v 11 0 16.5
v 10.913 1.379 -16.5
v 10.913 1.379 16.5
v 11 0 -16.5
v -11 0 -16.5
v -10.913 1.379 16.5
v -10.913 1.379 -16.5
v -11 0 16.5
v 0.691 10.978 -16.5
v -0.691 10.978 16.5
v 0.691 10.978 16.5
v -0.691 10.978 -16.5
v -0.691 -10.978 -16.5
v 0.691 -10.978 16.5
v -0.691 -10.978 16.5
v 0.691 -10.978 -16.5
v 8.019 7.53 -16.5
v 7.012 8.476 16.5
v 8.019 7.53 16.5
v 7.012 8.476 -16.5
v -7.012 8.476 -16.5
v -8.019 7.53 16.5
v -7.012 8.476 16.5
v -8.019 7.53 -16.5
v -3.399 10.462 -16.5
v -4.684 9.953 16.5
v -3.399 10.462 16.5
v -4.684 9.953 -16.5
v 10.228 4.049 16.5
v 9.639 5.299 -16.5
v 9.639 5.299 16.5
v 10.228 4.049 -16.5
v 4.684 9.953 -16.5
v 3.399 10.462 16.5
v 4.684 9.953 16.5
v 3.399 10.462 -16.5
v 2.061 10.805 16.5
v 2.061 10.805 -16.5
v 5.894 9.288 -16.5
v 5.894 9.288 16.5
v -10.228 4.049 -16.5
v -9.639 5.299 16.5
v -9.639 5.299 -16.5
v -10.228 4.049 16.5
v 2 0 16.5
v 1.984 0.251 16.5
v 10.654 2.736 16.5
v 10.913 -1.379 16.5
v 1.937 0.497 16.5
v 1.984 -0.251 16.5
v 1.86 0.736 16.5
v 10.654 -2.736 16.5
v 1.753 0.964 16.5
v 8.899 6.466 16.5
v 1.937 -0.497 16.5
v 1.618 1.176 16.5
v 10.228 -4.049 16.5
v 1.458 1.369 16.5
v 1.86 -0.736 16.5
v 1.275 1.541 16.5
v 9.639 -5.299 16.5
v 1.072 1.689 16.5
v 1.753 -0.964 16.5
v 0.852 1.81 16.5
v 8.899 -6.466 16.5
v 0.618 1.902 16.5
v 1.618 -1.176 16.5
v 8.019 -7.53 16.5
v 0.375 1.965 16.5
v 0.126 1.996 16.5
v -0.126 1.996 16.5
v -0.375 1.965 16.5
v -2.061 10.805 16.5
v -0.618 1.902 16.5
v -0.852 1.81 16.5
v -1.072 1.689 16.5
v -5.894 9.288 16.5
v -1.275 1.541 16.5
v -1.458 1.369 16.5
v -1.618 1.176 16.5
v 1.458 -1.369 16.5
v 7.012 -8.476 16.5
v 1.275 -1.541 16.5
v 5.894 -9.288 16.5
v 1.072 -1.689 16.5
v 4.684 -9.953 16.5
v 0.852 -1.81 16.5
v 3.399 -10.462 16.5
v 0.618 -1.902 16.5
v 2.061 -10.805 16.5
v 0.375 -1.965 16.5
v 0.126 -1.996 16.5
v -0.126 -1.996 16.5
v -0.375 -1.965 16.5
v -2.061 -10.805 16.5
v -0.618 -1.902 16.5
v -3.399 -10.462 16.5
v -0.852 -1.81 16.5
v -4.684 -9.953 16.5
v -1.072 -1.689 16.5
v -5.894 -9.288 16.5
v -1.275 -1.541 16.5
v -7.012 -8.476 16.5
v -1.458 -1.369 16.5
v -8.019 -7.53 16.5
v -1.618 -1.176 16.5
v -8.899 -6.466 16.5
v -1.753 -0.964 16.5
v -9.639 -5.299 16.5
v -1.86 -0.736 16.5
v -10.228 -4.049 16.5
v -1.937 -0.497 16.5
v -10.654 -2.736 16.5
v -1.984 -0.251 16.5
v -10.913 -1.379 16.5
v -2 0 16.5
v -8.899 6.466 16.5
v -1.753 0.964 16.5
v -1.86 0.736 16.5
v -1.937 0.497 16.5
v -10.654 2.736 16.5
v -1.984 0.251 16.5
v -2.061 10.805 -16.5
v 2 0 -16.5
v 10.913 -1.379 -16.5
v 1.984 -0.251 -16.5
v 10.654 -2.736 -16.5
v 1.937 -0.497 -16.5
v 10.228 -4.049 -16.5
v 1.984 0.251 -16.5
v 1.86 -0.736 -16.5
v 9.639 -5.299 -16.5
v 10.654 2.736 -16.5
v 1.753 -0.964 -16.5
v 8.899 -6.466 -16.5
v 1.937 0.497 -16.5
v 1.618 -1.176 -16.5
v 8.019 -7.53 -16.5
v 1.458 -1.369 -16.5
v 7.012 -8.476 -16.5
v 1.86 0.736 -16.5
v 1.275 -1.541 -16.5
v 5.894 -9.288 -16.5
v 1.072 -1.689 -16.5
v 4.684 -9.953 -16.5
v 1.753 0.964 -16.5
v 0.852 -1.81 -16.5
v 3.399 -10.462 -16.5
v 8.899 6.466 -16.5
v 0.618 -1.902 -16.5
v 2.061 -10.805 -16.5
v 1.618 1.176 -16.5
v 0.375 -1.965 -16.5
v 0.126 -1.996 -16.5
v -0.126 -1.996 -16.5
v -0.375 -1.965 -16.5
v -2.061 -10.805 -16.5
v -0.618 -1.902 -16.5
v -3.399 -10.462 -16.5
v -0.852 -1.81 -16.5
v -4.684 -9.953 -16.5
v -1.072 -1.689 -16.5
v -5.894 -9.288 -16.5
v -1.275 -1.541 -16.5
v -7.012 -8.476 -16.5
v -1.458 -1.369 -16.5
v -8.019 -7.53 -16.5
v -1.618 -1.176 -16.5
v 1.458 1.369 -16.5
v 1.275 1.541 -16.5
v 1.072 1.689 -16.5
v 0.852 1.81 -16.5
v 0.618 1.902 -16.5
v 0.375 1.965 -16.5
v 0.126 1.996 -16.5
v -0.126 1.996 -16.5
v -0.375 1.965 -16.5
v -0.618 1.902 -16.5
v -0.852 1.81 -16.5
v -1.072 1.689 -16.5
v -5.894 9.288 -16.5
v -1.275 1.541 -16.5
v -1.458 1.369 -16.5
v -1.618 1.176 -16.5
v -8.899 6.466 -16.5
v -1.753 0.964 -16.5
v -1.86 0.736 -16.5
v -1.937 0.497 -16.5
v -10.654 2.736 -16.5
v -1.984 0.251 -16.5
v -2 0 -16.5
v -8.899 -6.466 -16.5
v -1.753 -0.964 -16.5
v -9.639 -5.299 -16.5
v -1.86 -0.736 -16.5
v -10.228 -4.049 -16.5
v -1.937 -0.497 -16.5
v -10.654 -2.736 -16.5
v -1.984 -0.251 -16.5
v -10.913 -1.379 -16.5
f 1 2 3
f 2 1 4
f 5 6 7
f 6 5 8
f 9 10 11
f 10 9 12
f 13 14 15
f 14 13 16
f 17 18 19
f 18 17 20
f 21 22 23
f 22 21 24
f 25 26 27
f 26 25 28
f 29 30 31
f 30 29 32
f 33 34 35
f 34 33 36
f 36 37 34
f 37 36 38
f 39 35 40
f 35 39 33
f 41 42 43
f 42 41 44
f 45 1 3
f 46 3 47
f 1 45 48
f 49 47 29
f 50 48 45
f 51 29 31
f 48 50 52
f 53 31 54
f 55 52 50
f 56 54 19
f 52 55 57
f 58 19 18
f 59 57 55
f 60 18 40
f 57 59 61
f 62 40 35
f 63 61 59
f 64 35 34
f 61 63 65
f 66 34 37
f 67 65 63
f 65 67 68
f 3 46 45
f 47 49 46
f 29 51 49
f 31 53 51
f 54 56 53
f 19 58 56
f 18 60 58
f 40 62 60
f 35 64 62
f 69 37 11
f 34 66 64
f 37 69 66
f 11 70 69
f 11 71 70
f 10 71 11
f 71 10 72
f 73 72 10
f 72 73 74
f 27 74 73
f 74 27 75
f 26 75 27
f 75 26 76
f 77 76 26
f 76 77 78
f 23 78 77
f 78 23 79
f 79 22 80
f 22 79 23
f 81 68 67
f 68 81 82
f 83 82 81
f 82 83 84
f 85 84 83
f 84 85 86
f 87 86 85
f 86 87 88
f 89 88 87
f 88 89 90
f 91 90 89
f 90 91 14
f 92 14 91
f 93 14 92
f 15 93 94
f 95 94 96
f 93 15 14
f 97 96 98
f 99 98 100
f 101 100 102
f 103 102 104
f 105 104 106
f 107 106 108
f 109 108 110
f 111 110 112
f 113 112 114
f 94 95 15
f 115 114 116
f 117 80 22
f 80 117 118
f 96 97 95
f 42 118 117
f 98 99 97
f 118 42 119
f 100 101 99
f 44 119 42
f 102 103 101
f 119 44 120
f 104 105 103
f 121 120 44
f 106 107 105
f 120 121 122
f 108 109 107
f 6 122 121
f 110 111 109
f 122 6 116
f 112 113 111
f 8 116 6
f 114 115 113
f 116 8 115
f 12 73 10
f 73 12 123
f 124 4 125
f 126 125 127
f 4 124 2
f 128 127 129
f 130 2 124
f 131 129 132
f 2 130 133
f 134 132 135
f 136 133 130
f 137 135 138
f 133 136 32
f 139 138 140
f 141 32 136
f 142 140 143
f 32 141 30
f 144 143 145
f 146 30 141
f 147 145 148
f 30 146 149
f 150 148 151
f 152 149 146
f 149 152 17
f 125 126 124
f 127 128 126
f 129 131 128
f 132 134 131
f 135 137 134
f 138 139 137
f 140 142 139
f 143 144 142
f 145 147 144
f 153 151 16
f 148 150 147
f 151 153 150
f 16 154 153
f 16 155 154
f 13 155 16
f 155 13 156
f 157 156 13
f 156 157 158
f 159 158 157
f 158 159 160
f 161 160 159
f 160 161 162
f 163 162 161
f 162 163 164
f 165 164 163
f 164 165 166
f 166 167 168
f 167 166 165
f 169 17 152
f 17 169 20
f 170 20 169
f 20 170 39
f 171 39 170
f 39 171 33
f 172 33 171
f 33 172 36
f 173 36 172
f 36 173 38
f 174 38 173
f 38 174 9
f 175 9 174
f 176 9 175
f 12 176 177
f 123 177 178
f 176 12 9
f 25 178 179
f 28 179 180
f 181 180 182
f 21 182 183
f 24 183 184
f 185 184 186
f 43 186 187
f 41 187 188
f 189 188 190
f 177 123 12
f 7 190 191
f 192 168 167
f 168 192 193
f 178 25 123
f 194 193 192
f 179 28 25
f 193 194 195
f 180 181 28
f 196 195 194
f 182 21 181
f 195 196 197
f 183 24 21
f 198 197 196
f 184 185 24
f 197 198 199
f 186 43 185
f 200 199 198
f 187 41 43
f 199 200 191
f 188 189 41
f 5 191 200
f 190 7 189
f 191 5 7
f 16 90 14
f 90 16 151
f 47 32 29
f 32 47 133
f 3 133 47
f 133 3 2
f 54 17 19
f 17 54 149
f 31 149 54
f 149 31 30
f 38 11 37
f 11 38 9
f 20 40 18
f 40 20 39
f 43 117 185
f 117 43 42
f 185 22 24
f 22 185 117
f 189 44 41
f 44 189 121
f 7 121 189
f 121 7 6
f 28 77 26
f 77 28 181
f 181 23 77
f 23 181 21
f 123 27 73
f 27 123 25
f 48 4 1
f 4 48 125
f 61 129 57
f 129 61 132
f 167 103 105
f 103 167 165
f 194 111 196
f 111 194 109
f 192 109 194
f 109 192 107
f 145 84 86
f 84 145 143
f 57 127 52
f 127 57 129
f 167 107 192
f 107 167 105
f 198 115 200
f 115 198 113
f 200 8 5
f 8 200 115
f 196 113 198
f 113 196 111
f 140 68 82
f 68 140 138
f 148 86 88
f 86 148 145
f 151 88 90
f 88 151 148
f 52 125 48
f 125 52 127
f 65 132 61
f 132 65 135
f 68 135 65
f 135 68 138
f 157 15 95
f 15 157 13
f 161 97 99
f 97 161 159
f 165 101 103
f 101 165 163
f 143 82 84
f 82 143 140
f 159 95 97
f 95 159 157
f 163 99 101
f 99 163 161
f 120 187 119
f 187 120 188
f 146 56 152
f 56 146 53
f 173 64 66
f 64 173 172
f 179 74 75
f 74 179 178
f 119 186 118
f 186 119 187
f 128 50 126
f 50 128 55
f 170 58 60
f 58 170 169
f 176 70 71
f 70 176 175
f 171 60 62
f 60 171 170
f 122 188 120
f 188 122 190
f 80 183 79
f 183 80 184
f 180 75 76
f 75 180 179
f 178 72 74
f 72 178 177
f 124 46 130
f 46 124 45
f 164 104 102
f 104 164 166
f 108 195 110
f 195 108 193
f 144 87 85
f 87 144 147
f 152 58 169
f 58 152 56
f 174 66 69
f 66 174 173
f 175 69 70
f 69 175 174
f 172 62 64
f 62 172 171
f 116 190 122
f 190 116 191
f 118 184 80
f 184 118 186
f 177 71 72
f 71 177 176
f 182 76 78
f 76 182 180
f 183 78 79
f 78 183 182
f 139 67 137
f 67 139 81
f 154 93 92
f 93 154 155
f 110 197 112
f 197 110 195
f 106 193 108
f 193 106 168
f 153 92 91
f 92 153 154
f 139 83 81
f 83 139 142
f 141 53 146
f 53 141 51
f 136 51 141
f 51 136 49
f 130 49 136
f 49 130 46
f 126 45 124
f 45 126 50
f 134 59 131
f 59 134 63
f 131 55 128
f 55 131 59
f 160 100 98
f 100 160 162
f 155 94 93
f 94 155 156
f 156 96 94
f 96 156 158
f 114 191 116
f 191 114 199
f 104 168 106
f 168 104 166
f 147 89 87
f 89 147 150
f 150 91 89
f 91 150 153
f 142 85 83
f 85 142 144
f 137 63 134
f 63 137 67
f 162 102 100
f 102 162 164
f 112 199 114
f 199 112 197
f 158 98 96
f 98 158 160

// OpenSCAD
$fn = 50;


difference() {
	union() {
		translate(v = [0, 0, -16.5000000000]) {
			cylinder(h = 33, r = 11.0000000000);
		}
	}
	union() {
		translate(v = [0, 0, -100.0000000000]) {
			cylinder(h = 200, r = 2);
		}
	}
}
